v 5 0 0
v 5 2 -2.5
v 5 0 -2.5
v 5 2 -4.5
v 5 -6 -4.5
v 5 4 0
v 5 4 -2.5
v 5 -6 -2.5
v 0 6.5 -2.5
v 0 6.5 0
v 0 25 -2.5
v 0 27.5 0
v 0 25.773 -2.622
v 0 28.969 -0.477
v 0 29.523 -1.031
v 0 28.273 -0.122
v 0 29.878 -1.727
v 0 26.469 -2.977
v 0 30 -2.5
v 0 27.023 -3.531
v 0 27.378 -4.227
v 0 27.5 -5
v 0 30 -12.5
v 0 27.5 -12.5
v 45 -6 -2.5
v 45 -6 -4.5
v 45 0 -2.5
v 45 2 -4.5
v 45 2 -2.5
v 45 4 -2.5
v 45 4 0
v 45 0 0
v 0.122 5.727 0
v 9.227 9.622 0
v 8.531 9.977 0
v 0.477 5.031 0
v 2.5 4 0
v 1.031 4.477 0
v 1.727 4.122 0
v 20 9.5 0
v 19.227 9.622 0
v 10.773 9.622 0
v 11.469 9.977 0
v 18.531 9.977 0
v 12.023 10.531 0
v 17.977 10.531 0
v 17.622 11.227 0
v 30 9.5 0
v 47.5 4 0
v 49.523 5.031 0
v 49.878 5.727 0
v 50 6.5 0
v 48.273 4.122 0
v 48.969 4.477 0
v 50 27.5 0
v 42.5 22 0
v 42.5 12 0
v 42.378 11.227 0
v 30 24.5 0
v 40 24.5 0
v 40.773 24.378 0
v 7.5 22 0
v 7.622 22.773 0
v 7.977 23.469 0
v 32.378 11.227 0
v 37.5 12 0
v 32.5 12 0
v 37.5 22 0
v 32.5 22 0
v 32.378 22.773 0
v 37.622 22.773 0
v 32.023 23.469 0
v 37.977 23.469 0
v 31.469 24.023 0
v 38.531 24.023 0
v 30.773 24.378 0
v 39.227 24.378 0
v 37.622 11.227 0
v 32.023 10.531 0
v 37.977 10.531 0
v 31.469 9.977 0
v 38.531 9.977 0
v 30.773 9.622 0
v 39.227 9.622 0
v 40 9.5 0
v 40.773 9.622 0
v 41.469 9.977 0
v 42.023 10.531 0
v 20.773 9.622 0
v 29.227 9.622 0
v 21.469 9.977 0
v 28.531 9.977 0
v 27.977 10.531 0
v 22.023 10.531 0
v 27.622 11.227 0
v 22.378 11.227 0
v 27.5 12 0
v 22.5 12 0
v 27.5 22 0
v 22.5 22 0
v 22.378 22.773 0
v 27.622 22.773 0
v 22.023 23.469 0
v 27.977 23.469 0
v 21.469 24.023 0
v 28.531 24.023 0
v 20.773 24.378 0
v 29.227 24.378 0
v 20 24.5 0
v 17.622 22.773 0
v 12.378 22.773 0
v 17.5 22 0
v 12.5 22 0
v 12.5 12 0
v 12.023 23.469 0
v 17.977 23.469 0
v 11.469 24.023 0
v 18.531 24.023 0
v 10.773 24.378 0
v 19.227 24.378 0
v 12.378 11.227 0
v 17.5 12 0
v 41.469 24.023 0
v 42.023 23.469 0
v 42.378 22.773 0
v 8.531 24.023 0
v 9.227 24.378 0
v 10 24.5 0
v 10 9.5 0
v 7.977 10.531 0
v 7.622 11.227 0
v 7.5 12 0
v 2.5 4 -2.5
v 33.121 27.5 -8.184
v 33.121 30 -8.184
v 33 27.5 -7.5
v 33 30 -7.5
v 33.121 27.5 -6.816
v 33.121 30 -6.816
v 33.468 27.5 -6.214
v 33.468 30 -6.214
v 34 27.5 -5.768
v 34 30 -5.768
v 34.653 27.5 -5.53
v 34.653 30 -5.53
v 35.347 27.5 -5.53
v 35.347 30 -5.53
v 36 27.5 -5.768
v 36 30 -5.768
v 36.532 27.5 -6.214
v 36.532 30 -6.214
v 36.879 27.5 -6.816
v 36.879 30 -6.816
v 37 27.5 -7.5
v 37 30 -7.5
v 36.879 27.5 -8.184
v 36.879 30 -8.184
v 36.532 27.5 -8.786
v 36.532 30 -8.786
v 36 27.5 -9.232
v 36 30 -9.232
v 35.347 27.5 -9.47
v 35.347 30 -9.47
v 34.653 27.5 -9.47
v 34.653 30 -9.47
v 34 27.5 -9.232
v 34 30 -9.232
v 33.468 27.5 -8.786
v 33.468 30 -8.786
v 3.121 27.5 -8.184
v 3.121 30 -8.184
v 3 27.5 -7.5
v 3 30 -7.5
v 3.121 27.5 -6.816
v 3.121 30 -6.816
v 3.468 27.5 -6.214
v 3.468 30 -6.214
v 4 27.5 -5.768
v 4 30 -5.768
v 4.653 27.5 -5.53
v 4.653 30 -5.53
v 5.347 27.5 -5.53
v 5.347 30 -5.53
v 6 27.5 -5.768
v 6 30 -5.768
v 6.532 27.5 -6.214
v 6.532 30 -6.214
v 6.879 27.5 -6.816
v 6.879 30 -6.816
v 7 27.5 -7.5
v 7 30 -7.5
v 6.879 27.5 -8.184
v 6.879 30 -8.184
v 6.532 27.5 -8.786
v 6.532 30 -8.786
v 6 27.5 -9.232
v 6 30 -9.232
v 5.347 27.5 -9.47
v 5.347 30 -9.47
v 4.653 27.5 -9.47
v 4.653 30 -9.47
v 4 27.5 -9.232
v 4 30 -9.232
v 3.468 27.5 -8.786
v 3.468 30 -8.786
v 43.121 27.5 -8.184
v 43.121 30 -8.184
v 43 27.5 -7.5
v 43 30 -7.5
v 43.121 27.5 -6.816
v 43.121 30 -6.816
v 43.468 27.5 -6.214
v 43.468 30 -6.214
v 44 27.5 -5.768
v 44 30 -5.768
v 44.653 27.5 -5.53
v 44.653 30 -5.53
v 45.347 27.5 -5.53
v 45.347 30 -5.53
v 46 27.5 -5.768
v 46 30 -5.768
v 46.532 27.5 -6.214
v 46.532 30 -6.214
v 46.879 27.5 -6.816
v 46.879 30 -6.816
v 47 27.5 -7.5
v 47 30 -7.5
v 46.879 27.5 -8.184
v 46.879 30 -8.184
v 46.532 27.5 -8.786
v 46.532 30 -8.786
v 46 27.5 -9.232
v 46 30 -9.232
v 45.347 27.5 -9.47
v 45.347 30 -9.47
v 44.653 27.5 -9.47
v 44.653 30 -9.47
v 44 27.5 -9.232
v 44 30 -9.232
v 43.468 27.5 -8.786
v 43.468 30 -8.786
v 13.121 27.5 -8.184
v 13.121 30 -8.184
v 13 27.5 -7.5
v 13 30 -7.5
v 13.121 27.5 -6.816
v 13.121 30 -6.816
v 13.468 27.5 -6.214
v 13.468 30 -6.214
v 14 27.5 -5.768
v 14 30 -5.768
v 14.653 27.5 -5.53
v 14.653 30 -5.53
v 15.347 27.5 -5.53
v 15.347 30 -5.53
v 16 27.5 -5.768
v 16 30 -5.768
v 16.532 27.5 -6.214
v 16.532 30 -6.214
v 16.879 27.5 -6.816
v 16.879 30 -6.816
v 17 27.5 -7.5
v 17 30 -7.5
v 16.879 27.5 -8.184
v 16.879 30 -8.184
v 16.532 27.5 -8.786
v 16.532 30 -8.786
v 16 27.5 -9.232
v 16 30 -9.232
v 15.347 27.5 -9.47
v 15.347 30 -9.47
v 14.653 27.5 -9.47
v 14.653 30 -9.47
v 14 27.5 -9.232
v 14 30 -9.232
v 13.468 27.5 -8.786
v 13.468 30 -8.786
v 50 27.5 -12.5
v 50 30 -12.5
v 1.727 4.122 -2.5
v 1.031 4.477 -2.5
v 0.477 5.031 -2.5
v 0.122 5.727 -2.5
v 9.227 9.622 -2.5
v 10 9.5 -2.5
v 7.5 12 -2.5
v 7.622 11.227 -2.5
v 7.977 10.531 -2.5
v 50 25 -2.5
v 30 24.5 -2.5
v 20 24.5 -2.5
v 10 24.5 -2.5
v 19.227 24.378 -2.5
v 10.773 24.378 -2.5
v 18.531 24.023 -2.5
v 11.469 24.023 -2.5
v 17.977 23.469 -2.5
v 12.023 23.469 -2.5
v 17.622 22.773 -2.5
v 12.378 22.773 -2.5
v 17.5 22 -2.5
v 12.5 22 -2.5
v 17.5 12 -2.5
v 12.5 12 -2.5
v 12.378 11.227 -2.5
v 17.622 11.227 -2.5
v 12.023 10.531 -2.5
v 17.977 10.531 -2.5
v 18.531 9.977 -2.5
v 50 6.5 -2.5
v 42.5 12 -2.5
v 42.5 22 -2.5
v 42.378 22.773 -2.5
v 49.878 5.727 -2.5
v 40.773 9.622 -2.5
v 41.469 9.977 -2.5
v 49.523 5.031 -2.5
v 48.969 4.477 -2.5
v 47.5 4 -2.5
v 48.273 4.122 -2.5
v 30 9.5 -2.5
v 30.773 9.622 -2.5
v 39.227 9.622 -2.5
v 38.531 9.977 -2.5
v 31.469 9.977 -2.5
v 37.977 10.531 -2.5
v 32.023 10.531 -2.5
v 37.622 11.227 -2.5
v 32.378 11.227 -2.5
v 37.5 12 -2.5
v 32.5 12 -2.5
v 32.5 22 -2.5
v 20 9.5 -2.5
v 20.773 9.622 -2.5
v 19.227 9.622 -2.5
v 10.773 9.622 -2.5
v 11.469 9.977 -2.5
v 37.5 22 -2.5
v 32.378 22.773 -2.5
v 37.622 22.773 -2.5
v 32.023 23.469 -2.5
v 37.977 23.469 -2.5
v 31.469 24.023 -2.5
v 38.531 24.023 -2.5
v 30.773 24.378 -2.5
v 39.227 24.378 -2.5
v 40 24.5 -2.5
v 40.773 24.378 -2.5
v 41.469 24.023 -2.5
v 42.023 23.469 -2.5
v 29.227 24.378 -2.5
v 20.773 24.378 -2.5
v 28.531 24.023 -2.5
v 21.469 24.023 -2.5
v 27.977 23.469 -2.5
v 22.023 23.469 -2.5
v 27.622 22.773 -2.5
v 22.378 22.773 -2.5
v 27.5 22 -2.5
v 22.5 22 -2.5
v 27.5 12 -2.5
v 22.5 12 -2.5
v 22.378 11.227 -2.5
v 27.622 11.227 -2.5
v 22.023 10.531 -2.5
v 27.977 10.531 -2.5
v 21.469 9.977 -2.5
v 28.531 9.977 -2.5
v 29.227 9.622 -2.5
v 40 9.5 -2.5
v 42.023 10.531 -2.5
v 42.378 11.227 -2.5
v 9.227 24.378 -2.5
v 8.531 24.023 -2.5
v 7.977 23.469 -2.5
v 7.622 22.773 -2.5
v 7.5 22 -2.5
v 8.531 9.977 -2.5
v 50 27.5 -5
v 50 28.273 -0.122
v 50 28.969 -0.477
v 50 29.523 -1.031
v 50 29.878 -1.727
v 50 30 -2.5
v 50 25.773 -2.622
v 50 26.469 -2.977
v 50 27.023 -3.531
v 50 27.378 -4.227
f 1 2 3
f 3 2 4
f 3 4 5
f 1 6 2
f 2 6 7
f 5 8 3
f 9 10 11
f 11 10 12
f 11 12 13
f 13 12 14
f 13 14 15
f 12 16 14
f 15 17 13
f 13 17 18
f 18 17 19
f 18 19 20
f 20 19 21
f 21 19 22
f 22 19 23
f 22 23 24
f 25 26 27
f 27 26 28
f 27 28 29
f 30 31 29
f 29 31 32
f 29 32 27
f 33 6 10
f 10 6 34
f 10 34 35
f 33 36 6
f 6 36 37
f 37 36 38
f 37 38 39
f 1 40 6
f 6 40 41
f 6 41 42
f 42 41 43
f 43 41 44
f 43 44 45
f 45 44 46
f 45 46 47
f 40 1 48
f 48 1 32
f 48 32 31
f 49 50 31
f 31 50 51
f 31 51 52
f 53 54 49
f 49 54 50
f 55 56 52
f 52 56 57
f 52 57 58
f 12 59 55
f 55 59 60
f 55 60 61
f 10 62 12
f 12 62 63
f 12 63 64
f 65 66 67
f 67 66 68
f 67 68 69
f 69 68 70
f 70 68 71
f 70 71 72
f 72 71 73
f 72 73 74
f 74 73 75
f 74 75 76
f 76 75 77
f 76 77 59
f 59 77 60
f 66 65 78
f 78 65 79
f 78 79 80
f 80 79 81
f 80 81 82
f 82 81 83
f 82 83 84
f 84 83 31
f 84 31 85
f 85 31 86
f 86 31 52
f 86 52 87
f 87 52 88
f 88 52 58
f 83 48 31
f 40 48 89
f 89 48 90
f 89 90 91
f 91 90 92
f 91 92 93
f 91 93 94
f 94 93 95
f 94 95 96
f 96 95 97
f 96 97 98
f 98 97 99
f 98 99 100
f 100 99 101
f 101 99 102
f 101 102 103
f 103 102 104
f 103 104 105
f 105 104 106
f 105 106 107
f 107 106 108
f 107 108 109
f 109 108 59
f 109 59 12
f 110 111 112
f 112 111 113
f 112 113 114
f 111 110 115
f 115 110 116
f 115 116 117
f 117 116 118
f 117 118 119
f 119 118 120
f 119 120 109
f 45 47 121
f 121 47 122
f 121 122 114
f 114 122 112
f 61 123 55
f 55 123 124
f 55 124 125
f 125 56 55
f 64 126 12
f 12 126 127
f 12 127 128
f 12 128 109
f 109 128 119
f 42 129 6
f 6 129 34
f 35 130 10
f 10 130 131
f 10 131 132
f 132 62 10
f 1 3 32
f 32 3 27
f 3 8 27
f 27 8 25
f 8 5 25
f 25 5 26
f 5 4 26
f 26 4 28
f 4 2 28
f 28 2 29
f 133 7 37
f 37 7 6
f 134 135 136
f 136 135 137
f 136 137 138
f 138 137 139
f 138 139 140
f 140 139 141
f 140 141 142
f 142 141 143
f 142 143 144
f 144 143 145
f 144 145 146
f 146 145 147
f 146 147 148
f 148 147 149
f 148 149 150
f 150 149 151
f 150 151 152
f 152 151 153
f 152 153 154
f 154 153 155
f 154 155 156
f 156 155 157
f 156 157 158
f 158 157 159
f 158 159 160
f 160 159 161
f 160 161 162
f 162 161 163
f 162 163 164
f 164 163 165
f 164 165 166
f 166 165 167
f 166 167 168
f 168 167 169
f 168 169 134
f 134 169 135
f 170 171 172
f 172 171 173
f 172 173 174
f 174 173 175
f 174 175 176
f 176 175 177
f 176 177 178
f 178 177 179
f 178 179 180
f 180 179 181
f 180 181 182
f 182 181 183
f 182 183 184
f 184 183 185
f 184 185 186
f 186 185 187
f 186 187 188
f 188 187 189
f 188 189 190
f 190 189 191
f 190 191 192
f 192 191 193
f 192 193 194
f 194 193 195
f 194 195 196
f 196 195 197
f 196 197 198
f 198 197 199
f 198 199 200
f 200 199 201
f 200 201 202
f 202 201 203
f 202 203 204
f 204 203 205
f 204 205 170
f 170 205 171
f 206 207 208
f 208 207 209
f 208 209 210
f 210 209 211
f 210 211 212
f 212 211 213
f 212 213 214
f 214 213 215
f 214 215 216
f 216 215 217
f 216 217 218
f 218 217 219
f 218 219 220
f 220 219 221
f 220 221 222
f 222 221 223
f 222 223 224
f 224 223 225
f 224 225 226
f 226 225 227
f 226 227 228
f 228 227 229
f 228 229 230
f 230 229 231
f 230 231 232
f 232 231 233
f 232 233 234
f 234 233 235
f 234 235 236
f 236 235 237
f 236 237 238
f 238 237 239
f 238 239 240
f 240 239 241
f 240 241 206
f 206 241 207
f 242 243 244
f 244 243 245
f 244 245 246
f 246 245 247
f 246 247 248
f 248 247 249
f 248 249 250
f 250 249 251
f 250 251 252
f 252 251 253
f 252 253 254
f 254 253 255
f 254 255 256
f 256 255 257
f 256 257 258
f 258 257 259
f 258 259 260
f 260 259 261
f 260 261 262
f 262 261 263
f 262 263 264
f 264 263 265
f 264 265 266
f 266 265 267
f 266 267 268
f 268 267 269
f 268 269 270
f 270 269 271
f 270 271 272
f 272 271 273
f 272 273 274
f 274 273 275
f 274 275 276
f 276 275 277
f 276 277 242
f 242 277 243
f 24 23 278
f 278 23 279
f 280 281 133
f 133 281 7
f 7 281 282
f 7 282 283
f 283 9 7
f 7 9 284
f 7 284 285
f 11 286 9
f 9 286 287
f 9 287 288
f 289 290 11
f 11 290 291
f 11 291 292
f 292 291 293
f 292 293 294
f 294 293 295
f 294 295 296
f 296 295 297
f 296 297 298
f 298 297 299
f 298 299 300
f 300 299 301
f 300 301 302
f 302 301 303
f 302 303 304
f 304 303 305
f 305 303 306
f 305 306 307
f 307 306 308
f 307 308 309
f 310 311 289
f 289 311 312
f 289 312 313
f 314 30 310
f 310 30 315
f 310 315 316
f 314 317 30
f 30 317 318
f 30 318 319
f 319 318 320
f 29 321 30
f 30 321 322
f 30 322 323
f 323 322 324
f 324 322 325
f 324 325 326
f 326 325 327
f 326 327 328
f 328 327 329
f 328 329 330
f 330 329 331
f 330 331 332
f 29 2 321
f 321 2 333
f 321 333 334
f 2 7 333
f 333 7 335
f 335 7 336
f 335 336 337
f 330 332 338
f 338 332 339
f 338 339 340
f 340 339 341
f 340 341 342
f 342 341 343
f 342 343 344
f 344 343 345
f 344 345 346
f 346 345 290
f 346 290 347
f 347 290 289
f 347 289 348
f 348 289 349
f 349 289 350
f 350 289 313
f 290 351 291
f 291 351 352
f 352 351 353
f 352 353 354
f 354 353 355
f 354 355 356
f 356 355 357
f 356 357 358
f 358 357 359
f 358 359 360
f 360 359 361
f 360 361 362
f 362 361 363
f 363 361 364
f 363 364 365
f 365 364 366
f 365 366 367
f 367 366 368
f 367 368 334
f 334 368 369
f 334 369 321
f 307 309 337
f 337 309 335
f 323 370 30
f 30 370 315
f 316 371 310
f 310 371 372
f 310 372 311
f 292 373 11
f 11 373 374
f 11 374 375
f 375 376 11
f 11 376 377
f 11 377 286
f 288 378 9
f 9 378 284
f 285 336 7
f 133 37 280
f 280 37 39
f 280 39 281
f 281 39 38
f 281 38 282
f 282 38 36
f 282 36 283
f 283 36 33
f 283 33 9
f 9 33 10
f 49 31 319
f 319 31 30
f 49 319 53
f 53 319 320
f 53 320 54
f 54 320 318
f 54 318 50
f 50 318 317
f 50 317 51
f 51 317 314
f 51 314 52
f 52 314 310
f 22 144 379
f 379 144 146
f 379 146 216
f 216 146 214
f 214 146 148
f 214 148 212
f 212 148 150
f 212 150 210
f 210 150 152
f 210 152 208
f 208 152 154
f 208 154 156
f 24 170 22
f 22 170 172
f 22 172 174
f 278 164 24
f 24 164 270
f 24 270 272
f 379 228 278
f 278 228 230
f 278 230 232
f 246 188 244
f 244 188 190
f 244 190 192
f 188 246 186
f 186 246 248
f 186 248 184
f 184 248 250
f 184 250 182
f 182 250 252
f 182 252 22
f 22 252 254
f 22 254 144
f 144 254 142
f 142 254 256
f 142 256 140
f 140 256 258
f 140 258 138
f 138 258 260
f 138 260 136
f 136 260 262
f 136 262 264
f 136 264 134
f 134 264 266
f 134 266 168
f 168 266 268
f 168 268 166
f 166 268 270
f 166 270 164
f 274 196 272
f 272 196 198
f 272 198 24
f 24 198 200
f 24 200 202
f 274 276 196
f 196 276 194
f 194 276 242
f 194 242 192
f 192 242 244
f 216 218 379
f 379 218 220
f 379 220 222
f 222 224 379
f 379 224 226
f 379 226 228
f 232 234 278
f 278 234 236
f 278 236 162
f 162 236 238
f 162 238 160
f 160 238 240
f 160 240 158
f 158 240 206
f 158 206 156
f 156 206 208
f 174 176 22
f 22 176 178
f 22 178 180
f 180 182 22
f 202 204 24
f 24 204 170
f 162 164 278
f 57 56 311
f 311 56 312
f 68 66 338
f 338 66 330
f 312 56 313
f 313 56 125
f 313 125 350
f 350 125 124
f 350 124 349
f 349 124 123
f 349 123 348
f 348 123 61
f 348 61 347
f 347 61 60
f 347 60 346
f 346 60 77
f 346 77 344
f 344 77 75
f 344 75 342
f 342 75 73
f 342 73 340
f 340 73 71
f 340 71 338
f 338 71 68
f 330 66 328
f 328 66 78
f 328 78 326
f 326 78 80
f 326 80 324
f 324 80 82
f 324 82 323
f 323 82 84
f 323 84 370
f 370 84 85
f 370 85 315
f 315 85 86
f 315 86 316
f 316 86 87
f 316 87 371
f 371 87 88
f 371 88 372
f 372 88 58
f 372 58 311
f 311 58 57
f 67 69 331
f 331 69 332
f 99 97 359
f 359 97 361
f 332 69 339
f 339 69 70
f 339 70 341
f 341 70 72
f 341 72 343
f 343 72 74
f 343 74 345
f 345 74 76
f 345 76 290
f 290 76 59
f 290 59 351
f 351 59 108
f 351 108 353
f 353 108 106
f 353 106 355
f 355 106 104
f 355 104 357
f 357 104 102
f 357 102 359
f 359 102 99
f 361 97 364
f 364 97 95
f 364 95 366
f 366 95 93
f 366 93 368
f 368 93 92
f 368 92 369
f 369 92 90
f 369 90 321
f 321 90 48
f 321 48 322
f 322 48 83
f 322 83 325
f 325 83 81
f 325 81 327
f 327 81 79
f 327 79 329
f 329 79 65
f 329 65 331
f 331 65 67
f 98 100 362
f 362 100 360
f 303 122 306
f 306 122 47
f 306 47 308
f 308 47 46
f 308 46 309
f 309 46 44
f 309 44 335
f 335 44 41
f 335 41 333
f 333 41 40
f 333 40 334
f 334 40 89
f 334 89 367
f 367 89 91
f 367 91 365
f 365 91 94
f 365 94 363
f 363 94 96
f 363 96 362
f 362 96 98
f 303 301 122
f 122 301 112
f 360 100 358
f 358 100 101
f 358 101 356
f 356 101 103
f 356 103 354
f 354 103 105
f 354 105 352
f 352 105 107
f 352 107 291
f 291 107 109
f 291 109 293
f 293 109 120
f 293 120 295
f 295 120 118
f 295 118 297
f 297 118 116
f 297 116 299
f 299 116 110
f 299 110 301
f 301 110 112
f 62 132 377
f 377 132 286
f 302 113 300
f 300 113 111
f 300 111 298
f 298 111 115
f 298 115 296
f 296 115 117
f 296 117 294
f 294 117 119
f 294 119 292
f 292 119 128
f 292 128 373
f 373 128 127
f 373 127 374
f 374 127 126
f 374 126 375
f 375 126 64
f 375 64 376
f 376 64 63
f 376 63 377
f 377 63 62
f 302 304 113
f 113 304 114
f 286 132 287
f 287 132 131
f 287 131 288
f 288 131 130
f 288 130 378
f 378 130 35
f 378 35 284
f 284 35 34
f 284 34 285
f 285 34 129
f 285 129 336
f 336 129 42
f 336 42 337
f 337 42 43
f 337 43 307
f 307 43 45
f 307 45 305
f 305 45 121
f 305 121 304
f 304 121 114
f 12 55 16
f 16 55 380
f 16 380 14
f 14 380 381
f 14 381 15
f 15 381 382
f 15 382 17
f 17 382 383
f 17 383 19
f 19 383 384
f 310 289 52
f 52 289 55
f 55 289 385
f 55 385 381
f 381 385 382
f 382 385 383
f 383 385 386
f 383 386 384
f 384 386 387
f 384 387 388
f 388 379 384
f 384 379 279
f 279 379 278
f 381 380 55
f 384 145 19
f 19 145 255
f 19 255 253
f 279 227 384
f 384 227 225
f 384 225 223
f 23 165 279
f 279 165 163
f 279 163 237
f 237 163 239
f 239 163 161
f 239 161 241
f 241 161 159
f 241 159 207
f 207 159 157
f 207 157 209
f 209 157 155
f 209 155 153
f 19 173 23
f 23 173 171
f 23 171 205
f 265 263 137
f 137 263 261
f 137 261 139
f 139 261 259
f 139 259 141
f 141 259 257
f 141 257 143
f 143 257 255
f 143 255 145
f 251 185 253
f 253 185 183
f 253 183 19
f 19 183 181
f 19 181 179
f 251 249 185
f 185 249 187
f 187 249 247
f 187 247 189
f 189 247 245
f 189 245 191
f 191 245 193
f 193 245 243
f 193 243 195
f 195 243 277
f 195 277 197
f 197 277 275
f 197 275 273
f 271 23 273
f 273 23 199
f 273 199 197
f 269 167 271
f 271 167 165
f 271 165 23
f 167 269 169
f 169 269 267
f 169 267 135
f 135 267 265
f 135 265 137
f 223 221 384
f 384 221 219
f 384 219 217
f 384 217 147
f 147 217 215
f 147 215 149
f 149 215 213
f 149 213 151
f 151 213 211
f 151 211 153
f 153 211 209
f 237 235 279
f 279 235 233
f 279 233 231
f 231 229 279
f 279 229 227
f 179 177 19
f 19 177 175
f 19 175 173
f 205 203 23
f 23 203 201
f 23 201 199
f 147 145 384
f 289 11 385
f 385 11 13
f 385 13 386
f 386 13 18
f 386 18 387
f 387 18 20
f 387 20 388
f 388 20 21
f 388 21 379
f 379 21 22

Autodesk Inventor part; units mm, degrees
ref_plane "YZ Plane" through (0, 0, 0) normal (1, 0, 0) x (0, 1, 0)
ref_plane "XZ Plane" through (0, 0, 0) normal (0, 1, 0) x (-1, 0, 0)
ref_plane "XY Plane" through (0, 0, 0) normal (0, 0, 1) x (1, 0, 0)
sketch "Sketch1" plane through (0, 0, 0) normal (1, 0, 0) x (0, 1, 0)
  line L0 (0, 0) -> (30, 0)
  line L1 (30, 0) -> (0, 0)
  line L2 (0, 0) -> (0, -2.5)
  line L3 (0, -2.5) -> (30, -2.5)
  line L4 (30, -2.5) -> (30, 0)
  line L5 (30, -2.5) -> (27.5, -2.5)
  line L6 (27.5, -2.5) -> (27.5, -12.5)
  line L7 (27.5, -12.5) -> (30, -12.5)
  line L8 (30, -12.5) -> (30, -2.5)
  line L9 (0, -2.5) -> (2, -2.5)
  line L10 (2, -2.5) -> (2, -4.5)
  line L11 (2, -4.5) -> (0, -4.5)
  line L12 (0, -4.5) -> (0, -2.5)
  line L13 (0, -2.5) -> (-6, -2.5)
  line L14 (-6, -2.5) -> (-6, -4.5)
  line L15 (-6, -4.5) -> (0, -4.5)
  line L16 (0, -4.5) -> (0, -2.5)
  dimension "d0" = 30
  dimension "d1" = 2.5
  dimension "d2" = 2.5
  dimension "d3" = 10
  dimension "d4" = 2
  dimension "d5" = 2
  dimension "d6" = 6
extrude "Extrusion1" add sketch "Sketch1" along normal blind 50
sketch "Sketch2" plane through (0, 30, 0) normal (0, 1, 0) x (1, 0, 0)
  line L0 (50, 12.5) -> (50, 0) projected
  line L1 (50, 12.5) -> (45, 12.5)
  line L2 (45, 12.5) -> (45, 7.5)
  line L3 (45, 7.5) -> (50, 7.5)
  line L4 (50, 7.5) -> (50, 12.5)
  line L5 (45, 7.5) -> (35, 7.5)
  line L6 (0, 12.5) -> (50, 12.5) projected
  line L7 (0, 12.5) -> (5, 12.5)
  line L8 (5, 12.5) -> (5, 7.5)
  line L9 (5, 7.5) -> (0, 7.5)
  line L10 (0, 7.5) -> (0, 12.5)
  circle A0 centre (5, 7.5) radius 2
  circle A1 centre (35, 7.5) radius 2
  circle A2 centre (45, 7.5) radius 2
  line L11 (5, 7.5) -> (15, 7.5)
  circle A3 centre (15, 7.5) radius 2
  point P0 (0, 0)
  dimension "d9" = 5
  dimension "d10" = 5
  dimension "d11" = 10
  dimension "d12" = 5
  dimension "d13" = 5
  dimension "d14" = 4
  dimension "d15" = 4
  dimension "d16" = 4
  dimension "d19" = 10
  dimension "d20" = 4
extrude "Extrusion2" cut sketch "Sketch2" against normal blind 30 contours A1 | A3 | A2 L5 L3 | L3 L2 A2 | L2 L5 A2 | A0 L11 L8 | L8 L9 A0 | L11 A0 L9
sketch "Sketch3" plane through (0, 0, 0) normal (0, 0, 1) x (1, 0, 0)
  line L0 (0, -6) -> (0, 2) projected
  line L1 (0, -6) -> (5, -6)
  line L2 (5, -6) -> (5, 4)
  line L3 (5, 4) -> (0, 4)
  line L4 (0, 4) -> (0, -6)
  line L5 (45, -6) -> (40, -6)
  line L6 (40, -6) -> (40, 4)
  line L7 (40, 4) -> (45, 4)
  line L8 (45, 4) -> (45, -6)
  line L9 (50, -6) -> (50, 2) projected
  line L10 (50, -6) -> (45, -6)
  line L11 (45, -6) -> (45, 4)
  line L12 (45, 4) -> (50, 4)
  line L13 (50, 4) -> (50, -6)
  point P0 (0, 0)
  point P1 (0, 2)
  dimension "d21" = 5
  dimension "d22" = 10
  dimension "d23" = 5
  dimension "d24" = 10
extrude "Extrusion3" cut sketch "Sketch3" against normal blind 50 contours L0 L4 L3 L2 L1 | L8 L12 L13 L9 L10
sketch "Sketch4" plane through (0, 30, 0) normal (0, 0, 1) x (1, 0, 0)
  line L0 (0, 0) -> (0, -26) projected
  line L1 (0, -13) -> (50, -13)
  line L2 (50, -26) -> (50, -2.5) projected
  line L3 (0, -13) -> (10, -13)
  line L4 (10, -13) -> (20, -13)
  line L5 (20, -13) -> (30, -13)
  line L6 (30, -13) -> (40, -13)
  line L7 (40, -13) -> (50, -13)
  line L8 (7.5, -20.5) -> (12.5, -20.5)
  line L9 (12.5, -20.5) -> (12.5, -5.5)
  line L10 (12.5, -5.5) -> (7.5, -5.5)
  line L11 (7.5, -5.5) -> (7.5, -20.5)
  line L12 (7.5, -20.5) -> (12.5, -5.5) construction
  line L13 (12.5, -20.5) -> (7.5, -5.5) construction
  line L14 (17.5, -20.5) -> (22.5, -20.5)
  line L15 (22.5, -20.5) -> (22.5, -5.5)
  line L16 (22.5, -5.5) -> (17.5, -5.5)
  line L17 (17.5, -5.5) -> (17.5, -20.5)
  line L18 (17.5, -20.5) -> (22.5, -5.5) construction
  line L19 (22.5, -20.5) -> (17.5, -5.5) construction
  line L20 (27.5, -20.5) -> (32.5, -20.5)
  line L21 (32.5, -20.5) -> (32.5, -5.5)
  line L22 (32.5, -5.5) -> (27.5, -5.5)
  line L23 (27.5, -5.5) -> (27.5, -20.5)
  line L24 (27.5, -20.5) -> (32.5, -5.5) construction
  line L25 (32.5, -20.5) -> (27.5, -5.5) construction
  line L26 (37.5, -20.5) -> (42.5, -20.5)
  line L27 (42.5, -20.5) -> (42.5, -5.5)
  line L28 (42.5, -5.5) -> (37.5, -5.5)
  line L29 (37.5, -5.5) -> (37.5, -20.5)
  line L30 (37.5, -20.5) -> (42.5, -5.5) construction
  line L31 (42.5, -20.5) -> (37.5, -5.5) construction
  point P0 (0, -30)
  dimension "d27" = 10
  dimension "d28" = 10
  dimension "d29" = 10
  dimension "d30" = 10
  dimension "d31" = 10
  dimension "d32" = 5
  dimension "d33" = 15
  dimension "d34" = 5
  dimension "d35" = 15
  dimension "d36" = 5
  dimension "d37" = 15
  dimension "d38" = 5
  dimension "d39" = 15
extrude "Extrusion4" cut sketch "Sketch4" against normal blind 50
fillet "Fillet1" radius 2.5 16 edges at (7.5, 9.5, -1.25) (12.5, 9.5, -1.25) (7.5, 24.5, -1.25) (12.5, 24.5, -1.25) (17.5, 24.5, -1.25) (22.5, 24.5, -1.25) (17.5, 9.5, -1.25) (22.5, 9.5, -1.25) (27.5, 9.5, -1.25) (27.5, 24.5, -1.25) (32.5, 24.5, -1.25) (32.5, 9.5, -1.25) (37.5, 9.5, -1.25) (37.5, 24.5, -1.25) (42.5, 24.5, -1.25) (42.5, 9.5, -1.25)
fillet "Fillet2" radius 2.5 4 edges at (25, 30, 0) (25, 27.5, -2.5) (50, 4, -1.25) (0, 4, -1.25)
properties part number "lateral_panel_1"
